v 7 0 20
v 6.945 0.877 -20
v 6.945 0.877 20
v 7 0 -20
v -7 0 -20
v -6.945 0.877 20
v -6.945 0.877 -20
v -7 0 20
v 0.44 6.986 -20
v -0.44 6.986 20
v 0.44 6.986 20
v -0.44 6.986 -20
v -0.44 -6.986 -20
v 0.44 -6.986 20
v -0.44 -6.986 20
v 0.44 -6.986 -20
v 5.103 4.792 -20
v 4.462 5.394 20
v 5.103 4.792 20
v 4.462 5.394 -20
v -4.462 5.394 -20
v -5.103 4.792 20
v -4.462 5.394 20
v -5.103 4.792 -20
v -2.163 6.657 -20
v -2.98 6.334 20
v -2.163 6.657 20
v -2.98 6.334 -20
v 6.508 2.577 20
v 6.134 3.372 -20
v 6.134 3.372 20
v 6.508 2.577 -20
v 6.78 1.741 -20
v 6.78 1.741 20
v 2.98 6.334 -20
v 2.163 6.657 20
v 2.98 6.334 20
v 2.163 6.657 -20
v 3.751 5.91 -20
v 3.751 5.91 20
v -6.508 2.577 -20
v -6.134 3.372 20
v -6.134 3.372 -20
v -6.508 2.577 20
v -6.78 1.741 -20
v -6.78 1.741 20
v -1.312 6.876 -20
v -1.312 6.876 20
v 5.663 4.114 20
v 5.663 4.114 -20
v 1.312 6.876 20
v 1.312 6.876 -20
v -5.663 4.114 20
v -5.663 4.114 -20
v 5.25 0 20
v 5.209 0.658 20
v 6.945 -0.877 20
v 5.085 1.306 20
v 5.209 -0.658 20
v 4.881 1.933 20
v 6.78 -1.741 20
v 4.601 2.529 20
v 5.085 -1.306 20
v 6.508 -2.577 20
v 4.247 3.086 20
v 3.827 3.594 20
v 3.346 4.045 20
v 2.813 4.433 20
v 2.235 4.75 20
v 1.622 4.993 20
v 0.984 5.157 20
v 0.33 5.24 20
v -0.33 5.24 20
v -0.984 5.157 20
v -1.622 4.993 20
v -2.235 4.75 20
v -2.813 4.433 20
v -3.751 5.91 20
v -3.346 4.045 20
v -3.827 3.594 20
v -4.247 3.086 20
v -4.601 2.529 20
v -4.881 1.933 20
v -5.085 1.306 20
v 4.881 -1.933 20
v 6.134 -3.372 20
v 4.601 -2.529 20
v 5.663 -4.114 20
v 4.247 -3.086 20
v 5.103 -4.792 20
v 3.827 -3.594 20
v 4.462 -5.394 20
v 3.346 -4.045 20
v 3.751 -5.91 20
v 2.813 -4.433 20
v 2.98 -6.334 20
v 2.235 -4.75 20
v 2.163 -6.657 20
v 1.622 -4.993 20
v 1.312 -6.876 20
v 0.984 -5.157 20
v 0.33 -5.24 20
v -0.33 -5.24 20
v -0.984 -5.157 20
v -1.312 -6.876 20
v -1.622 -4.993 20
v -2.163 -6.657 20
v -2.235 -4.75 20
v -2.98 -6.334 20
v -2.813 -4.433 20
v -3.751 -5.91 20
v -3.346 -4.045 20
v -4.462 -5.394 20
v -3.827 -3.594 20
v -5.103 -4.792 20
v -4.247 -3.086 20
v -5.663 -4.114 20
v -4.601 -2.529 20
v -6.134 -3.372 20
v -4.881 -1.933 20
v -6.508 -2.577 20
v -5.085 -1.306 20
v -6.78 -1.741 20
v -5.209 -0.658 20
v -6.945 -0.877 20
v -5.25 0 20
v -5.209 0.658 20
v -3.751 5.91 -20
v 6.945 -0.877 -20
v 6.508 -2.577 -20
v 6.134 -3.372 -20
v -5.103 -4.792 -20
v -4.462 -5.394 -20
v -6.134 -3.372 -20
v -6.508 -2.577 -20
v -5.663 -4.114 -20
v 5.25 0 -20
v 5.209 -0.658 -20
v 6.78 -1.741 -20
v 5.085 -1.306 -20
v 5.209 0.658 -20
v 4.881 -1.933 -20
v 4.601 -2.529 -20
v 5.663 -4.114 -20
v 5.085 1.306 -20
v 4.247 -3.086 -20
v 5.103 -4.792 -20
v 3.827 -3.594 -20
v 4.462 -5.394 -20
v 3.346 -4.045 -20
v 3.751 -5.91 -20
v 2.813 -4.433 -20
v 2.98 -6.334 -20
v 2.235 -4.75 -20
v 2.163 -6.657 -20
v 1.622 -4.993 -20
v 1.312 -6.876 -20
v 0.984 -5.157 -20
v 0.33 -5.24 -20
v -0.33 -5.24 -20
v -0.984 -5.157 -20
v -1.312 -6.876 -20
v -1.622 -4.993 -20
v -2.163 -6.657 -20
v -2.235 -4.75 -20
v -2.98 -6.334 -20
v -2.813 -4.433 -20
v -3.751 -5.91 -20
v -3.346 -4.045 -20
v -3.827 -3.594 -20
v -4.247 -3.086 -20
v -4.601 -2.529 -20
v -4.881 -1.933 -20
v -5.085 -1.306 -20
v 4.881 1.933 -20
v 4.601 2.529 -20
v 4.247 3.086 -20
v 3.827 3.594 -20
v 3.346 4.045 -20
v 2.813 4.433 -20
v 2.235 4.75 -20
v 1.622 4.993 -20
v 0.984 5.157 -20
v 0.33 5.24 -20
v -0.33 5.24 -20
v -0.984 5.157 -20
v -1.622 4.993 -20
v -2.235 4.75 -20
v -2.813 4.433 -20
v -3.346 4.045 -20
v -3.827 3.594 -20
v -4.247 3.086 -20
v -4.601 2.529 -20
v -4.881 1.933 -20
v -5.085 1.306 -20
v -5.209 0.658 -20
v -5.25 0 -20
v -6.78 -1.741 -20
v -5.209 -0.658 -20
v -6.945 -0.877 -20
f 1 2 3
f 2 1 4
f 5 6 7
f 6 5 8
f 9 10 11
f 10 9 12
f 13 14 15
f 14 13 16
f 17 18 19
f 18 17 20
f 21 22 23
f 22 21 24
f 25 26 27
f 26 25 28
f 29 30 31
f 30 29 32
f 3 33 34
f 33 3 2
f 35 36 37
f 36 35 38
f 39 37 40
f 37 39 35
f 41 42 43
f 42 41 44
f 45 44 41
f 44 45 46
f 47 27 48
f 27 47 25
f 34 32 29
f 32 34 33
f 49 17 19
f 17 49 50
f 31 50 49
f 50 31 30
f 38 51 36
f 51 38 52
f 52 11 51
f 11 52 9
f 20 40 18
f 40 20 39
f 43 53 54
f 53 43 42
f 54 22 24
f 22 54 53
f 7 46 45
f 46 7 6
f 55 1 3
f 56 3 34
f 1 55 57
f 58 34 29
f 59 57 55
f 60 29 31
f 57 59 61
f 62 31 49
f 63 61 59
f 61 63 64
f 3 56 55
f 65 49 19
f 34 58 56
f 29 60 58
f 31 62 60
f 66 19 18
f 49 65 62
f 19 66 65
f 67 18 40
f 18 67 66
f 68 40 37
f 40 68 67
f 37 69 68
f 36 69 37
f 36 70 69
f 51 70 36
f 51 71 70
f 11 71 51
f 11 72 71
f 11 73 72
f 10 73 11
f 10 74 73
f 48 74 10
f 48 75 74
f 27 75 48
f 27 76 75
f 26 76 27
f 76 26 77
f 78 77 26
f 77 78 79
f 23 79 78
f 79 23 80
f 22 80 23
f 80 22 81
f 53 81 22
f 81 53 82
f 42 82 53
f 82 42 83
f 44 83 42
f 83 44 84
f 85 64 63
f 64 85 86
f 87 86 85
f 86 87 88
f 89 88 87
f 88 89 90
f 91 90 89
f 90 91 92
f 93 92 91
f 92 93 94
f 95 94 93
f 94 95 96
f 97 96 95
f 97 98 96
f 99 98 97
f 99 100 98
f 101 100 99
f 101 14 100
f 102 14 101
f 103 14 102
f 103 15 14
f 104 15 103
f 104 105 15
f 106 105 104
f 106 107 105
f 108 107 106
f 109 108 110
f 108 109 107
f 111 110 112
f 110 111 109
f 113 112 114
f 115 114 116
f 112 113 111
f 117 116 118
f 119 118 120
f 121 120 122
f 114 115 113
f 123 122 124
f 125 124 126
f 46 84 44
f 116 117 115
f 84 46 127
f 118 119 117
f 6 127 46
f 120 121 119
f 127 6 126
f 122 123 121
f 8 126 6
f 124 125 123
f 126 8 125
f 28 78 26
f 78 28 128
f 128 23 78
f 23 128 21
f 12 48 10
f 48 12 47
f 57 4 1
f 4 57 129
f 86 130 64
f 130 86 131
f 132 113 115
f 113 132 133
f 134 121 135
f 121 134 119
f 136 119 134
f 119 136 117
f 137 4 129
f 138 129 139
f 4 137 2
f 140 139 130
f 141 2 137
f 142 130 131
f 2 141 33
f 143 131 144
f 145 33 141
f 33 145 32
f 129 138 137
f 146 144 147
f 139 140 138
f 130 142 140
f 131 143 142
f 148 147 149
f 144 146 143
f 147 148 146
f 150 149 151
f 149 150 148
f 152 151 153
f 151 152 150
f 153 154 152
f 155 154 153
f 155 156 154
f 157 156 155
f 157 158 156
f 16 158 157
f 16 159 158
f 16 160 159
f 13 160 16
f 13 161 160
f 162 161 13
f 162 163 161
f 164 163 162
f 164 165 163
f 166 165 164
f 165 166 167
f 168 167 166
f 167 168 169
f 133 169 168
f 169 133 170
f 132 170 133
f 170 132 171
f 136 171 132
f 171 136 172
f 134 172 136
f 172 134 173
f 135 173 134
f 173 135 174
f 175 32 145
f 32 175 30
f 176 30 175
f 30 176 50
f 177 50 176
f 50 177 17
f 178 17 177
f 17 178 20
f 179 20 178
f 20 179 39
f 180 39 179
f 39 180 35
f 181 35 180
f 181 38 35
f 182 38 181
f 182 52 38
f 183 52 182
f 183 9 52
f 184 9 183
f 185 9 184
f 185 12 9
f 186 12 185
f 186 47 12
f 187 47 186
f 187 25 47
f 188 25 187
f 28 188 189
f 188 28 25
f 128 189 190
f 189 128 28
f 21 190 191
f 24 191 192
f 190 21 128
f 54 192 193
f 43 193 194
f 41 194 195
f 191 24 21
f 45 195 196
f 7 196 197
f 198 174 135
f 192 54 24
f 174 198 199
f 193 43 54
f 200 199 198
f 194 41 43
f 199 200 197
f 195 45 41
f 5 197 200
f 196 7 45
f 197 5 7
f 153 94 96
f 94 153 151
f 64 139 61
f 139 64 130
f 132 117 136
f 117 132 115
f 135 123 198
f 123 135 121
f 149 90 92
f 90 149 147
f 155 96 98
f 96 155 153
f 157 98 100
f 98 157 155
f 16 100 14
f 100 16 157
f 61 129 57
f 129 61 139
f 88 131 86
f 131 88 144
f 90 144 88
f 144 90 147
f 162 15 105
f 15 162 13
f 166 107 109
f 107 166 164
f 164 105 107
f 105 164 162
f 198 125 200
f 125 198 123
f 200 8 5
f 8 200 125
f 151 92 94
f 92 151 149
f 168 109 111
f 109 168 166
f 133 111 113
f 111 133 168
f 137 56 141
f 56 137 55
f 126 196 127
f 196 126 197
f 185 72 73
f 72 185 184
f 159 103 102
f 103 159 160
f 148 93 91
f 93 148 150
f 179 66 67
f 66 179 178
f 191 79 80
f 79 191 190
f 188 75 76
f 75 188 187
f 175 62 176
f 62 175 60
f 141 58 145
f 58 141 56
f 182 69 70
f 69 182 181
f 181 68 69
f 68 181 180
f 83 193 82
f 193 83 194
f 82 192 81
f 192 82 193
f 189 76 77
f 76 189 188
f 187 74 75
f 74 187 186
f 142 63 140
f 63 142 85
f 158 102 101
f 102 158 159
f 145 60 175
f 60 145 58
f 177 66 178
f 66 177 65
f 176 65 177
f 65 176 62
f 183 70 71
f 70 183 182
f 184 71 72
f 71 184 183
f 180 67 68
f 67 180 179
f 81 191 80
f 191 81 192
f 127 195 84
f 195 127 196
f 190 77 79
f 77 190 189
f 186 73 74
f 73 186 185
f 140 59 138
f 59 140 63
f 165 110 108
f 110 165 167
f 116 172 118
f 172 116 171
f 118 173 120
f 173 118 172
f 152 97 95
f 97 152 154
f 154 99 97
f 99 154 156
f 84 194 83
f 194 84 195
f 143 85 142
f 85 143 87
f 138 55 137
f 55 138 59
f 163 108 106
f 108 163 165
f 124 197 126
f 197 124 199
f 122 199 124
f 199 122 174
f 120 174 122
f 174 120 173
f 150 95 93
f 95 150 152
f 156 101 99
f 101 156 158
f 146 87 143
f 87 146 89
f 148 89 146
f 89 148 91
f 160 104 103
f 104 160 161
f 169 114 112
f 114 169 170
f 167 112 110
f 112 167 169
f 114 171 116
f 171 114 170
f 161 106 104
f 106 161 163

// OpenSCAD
$fn = 50;


difference() {
	union() {
		translate(v = [0, 0, -20.0000000000]) {
			cylinder(h = 40, r = 7.0000000000);
		}
	}
	union() {
		translate(v = [0, 0, -100.0000000000]) {
			cylinder(h = 200, r = 5.2500000000);
		}
	}
}
